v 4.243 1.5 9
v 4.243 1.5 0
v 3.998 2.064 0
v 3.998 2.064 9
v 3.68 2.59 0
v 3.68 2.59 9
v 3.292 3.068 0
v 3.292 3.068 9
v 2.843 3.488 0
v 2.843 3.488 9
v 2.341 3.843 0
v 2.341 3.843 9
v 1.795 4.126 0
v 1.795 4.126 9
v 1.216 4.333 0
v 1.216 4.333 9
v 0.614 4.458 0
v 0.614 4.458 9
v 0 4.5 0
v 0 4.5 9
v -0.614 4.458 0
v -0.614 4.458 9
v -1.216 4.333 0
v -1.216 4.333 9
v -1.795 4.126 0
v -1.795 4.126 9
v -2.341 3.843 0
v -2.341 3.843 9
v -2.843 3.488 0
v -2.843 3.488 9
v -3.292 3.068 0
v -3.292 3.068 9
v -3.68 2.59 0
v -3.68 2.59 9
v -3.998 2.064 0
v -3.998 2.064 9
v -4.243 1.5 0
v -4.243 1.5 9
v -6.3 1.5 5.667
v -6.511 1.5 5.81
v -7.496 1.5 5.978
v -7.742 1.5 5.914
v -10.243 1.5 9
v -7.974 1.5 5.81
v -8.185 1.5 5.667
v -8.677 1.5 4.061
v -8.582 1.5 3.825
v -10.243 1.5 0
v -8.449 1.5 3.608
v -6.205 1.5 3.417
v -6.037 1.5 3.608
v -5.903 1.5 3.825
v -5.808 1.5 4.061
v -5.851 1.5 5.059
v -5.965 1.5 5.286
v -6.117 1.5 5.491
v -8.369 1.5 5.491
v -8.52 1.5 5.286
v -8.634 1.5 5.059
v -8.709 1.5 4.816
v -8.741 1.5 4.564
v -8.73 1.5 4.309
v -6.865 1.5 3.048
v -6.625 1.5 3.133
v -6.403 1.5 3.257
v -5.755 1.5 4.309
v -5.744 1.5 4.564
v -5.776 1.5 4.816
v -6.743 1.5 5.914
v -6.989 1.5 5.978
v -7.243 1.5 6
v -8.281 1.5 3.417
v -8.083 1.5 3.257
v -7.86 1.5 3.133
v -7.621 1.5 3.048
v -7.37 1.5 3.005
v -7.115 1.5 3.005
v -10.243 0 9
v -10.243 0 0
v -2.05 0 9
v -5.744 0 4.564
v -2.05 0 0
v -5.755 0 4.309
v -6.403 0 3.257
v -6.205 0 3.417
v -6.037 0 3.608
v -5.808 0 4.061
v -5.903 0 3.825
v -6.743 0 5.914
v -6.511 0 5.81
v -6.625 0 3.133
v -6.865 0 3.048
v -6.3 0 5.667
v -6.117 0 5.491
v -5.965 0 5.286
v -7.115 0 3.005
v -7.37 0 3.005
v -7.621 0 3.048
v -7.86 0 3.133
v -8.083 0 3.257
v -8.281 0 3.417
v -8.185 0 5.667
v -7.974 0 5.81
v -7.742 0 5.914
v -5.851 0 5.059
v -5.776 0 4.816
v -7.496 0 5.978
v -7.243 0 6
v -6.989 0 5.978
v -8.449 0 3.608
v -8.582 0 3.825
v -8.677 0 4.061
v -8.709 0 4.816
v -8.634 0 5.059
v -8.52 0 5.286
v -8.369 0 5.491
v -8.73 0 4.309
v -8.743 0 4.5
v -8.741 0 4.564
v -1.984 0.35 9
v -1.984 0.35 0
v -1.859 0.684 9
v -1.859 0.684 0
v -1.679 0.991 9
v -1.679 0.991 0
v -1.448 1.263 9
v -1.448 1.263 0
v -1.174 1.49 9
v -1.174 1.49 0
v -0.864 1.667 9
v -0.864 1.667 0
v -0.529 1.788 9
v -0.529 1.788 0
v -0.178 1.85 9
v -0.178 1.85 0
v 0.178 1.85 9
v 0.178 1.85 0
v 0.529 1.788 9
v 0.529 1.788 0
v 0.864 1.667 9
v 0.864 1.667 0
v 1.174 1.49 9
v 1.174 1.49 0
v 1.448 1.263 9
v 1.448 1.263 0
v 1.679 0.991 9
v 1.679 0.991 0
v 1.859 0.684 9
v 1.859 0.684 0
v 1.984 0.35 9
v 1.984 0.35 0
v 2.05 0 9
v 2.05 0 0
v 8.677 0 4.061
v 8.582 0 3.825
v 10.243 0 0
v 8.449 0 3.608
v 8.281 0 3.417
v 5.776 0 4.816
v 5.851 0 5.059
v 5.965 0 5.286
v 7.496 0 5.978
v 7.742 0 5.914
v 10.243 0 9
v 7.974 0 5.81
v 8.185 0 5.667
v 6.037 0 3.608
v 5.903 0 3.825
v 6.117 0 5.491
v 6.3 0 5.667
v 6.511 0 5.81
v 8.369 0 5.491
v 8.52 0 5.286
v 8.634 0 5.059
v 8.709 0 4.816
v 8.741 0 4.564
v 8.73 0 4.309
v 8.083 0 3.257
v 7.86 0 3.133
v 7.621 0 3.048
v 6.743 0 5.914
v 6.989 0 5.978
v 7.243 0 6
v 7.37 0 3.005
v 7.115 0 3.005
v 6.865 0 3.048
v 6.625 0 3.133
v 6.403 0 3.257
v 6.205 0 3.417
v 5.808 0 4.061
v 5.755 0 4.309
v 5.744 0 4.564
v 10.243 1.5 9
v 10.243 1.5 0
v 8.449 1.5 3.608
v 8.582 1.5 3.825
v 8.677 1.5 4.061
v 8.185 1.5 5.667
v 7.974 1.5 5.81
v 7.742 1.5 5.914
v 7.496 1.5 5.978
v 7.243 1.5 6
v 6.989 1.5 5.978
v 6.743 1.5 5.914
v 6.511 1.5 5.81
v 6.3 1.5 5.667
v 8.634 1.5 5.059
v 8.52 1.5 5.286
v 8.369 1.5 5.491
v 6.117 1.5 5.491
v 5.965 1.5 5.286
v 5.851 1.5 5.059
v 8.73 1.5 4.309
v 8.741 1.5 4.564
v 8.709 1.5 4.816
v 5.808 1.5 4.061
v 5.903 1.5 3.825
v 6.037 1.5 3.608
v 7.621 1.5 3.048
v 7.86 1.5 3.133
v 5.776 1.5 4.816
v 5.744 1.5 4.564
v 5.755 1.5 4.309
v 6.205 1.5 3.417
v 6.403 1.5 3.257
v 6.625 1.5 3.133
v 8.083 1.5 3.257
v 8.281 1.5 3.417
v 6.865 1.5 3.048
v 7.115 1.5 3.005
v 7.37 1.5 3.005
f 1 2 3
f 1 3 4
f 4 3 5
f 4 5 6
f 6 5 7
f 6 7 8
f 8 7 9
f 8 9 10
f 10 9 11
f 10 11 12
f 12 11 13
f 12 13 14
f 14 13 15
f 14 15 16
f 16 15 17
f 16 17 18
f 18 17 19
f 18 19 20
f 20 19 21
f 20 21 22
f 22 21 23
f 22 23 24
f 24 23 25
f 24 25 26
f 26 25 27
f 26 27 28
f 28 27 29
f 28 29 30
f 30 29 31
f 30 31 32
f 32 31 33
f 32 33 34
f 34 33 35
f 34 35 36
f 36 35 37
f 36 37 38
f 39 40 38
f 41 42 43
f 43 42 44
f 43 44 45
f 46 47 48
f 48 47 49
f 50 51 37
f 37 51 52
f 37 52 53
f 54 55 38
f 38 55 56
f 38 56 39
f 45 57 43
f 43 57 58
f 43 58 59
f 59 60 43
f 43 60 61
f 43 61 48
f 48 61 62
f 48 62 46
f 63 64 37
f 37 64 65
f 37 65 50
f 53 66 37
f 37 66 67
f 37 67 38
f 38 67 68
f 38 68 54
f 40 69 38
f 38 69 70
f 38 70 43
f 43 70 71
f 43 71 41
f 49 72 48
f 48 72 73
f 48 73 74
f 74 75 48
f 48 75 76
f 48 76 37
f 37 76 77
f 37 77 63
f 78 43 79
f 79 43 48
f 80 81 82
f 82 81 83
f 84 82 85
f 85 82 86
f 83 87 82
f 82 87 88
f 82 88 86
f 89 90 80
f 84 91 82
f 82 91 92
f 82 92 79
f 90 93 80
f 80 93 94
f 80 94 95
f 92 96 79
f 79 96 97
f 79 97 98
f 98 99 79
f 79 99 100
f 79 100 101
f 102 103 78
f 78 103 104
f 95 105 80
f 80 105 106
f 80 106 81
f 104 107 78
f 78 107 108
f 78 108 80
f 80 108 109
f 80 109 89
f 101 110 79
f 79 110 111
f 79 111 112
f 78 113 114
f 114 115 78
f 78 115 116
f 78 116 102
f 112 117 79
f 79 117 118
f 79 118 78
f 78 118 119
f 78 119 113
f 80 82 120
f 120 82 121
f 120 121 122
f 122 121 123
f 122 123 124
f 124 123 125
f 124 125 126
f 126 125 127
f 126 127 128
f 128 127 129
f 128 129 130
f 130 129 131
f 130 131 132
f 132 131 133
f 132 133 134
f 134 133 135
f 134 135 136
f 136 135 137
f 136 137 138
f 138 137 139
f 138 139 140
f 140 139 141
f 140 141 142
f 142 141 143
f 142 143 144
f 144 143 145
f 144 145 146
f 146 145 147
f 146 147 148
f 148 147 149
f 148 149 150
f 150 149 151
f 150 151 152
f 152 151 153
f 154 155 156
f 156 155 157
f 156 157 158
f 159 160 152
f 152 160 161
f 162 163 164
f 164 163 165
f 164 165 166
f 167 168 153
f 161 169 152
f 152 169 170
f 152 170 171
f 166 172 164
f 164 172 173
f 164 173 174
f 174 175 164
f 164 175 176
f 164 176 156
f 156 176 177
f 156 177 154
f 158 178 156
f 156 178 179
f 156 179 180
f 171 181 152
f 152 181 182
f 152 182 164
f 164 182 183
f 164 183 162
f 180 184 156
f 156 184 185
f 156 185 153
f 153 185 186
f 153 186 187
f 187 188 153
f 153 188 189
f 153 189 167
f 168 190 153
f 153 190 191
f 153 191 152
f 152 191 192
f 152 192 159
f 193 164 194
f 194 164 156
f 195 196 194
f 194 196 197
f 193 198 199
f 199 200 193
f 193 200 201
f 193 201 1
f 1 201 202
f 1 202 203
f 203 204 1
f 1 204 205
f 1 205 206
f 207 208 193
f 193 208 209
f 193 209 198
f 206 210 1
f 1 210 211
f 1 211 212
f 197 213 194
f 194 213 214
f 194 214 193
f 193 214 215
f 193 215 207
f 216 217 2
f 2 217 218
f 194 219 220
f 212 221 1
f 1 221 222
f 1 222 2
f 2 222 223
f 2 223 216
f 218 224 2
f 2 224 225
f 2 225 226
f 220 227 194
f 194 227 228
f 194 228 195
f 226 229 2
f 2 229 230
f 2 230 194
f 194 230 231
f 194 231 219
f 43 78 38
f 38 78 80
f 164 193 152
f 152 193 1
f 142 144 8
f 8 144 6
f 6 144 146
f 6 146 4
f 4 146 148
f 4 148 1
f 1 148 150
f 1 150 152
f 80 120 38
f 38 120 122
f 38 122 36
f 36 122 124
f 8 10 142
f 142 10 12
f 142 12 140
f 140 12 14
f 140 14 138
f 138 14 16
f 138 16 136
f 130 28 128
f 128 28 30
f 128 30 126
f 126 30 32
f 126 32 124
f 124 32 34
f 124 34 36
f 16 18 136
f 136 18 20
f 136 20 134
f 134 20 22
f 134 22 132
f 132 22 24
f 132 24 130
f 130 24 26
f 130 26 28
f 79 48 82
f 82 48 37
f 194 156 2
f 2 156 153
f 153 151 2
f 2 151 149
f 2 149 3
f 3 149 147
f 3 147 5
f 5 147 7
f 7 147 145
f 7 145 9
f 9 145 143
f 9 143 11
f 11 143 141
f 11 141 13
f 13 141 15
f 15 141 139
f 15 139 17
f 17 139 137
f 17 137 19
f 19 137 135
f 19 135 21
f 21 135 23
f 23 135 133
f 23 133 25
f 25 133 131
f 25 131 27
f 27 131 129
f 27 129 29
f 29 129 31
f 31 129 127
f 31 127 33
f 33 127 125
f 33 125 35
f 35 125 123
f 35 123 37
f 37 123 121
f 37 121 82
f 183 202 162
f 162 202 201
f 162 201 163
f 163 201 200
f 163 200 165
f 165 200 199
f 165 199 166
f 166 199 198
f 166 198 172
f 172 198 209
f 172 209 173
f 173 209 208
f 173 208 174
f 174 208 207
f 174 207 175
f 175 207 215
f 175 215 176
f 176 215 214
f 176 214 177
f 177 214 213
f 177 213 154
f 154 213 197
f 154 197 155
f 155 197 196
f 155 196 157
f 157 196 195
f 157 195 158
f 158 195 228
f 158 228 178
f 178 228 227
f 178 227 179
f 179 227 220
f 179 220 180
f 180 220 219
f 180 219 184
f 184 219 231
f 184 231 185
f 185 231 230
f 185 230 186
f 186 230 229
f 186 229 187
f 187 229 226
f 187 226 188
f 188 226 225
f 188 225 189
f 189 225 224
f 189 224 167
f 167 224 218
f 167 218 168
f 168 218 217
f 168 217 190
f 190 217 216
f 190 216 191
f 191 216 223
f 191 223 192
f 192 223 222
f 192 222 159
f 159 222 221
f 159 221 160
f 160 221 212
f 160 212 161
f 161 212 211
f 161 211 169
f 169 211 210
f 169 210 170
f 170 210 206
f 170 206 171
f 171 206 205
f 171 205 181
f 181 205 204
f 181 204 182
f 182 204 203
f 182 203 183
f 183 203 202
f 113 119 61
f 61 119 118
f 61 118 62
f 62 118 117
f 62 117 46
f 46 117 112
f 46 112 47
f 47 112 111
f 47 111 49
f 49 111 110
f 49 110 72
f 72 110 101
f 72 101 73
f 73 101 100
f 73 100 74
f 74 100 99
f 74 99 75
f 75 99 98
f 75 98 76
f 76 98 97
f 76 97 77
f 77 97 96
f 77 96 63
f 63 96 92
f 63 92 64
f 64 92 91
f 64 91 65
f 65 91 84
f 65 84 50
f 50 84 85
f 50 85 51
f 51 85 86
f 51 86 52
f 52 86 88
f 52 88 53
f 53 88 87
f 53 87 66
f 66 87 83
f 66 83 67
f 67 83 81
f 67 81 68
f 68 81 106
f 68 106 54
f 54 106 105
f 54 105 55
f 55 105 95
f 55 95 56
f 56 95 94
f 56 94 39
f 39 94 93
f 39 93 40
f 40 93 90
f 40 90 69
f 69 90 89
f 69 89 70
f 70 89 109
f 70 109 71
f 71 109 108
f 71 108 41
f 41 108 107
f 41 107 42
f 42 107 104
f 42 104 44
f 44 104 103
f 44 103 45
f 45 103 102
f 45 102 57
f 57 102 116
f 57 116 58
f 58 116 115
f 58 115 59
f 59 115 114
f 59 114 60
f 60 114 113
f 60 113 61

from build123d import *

# Parameters (mm, degrees)
BOSS_EXTRUDE1_DEPTH = 9
SKETCH2_R           = 1.5
CUT_EXTRUDE1_DEPTH  = 10


with BuildPart() as part:
    # Sketch1 → Boss-Extrude1 (new body)
    with BuildSketch(Plane.XY):
        with BuildLine():
            Line((2.05, 0), (10.242640687, 0))
            Line((10.242640687, 0), (10.242640687, 1.5))
            Line((10.242640687, 1.5), (4.242640687, 1.5))
            ThreePointArc((4.242640687, 1.5), (0, 4.5), (-4.242640687, 1.5))
            Line((-4.242640687, 1.5), (-10.242640687, 1.5))
            Line((-10.242640687, 1.5), (-10.242640687, 0))
            Line((-10.242640687, 0), (-2.05, 0))
            ThreePointArc((-2.05, 0), (0, 1.857268651), (2.05, 0))
        make_face()
    extrude(amount=BOSS_EXTRUDE1_DEPTH)

    # Sketch2 → Cut-Extrude1 (cut)
    with BuildSketch(Plane(origin=(0, 1.5, 0), x_dir=(1, 0, 0), z_dir=(0, 1, 0))):
        with Locations(Location((-7.242640687, -4.5, 0), (0, 0, 270))):
            Circle(SKETCH2_R)
        with Locations(Location((7.242640687, -4.5, 0), (0, 0, 270))):
            Circle(SKETCH2_R)
    extrude(amount=-CUT_EXTRUDE1_DEPTH, mode=Mode.SUBTRACT)


solid = part.part
